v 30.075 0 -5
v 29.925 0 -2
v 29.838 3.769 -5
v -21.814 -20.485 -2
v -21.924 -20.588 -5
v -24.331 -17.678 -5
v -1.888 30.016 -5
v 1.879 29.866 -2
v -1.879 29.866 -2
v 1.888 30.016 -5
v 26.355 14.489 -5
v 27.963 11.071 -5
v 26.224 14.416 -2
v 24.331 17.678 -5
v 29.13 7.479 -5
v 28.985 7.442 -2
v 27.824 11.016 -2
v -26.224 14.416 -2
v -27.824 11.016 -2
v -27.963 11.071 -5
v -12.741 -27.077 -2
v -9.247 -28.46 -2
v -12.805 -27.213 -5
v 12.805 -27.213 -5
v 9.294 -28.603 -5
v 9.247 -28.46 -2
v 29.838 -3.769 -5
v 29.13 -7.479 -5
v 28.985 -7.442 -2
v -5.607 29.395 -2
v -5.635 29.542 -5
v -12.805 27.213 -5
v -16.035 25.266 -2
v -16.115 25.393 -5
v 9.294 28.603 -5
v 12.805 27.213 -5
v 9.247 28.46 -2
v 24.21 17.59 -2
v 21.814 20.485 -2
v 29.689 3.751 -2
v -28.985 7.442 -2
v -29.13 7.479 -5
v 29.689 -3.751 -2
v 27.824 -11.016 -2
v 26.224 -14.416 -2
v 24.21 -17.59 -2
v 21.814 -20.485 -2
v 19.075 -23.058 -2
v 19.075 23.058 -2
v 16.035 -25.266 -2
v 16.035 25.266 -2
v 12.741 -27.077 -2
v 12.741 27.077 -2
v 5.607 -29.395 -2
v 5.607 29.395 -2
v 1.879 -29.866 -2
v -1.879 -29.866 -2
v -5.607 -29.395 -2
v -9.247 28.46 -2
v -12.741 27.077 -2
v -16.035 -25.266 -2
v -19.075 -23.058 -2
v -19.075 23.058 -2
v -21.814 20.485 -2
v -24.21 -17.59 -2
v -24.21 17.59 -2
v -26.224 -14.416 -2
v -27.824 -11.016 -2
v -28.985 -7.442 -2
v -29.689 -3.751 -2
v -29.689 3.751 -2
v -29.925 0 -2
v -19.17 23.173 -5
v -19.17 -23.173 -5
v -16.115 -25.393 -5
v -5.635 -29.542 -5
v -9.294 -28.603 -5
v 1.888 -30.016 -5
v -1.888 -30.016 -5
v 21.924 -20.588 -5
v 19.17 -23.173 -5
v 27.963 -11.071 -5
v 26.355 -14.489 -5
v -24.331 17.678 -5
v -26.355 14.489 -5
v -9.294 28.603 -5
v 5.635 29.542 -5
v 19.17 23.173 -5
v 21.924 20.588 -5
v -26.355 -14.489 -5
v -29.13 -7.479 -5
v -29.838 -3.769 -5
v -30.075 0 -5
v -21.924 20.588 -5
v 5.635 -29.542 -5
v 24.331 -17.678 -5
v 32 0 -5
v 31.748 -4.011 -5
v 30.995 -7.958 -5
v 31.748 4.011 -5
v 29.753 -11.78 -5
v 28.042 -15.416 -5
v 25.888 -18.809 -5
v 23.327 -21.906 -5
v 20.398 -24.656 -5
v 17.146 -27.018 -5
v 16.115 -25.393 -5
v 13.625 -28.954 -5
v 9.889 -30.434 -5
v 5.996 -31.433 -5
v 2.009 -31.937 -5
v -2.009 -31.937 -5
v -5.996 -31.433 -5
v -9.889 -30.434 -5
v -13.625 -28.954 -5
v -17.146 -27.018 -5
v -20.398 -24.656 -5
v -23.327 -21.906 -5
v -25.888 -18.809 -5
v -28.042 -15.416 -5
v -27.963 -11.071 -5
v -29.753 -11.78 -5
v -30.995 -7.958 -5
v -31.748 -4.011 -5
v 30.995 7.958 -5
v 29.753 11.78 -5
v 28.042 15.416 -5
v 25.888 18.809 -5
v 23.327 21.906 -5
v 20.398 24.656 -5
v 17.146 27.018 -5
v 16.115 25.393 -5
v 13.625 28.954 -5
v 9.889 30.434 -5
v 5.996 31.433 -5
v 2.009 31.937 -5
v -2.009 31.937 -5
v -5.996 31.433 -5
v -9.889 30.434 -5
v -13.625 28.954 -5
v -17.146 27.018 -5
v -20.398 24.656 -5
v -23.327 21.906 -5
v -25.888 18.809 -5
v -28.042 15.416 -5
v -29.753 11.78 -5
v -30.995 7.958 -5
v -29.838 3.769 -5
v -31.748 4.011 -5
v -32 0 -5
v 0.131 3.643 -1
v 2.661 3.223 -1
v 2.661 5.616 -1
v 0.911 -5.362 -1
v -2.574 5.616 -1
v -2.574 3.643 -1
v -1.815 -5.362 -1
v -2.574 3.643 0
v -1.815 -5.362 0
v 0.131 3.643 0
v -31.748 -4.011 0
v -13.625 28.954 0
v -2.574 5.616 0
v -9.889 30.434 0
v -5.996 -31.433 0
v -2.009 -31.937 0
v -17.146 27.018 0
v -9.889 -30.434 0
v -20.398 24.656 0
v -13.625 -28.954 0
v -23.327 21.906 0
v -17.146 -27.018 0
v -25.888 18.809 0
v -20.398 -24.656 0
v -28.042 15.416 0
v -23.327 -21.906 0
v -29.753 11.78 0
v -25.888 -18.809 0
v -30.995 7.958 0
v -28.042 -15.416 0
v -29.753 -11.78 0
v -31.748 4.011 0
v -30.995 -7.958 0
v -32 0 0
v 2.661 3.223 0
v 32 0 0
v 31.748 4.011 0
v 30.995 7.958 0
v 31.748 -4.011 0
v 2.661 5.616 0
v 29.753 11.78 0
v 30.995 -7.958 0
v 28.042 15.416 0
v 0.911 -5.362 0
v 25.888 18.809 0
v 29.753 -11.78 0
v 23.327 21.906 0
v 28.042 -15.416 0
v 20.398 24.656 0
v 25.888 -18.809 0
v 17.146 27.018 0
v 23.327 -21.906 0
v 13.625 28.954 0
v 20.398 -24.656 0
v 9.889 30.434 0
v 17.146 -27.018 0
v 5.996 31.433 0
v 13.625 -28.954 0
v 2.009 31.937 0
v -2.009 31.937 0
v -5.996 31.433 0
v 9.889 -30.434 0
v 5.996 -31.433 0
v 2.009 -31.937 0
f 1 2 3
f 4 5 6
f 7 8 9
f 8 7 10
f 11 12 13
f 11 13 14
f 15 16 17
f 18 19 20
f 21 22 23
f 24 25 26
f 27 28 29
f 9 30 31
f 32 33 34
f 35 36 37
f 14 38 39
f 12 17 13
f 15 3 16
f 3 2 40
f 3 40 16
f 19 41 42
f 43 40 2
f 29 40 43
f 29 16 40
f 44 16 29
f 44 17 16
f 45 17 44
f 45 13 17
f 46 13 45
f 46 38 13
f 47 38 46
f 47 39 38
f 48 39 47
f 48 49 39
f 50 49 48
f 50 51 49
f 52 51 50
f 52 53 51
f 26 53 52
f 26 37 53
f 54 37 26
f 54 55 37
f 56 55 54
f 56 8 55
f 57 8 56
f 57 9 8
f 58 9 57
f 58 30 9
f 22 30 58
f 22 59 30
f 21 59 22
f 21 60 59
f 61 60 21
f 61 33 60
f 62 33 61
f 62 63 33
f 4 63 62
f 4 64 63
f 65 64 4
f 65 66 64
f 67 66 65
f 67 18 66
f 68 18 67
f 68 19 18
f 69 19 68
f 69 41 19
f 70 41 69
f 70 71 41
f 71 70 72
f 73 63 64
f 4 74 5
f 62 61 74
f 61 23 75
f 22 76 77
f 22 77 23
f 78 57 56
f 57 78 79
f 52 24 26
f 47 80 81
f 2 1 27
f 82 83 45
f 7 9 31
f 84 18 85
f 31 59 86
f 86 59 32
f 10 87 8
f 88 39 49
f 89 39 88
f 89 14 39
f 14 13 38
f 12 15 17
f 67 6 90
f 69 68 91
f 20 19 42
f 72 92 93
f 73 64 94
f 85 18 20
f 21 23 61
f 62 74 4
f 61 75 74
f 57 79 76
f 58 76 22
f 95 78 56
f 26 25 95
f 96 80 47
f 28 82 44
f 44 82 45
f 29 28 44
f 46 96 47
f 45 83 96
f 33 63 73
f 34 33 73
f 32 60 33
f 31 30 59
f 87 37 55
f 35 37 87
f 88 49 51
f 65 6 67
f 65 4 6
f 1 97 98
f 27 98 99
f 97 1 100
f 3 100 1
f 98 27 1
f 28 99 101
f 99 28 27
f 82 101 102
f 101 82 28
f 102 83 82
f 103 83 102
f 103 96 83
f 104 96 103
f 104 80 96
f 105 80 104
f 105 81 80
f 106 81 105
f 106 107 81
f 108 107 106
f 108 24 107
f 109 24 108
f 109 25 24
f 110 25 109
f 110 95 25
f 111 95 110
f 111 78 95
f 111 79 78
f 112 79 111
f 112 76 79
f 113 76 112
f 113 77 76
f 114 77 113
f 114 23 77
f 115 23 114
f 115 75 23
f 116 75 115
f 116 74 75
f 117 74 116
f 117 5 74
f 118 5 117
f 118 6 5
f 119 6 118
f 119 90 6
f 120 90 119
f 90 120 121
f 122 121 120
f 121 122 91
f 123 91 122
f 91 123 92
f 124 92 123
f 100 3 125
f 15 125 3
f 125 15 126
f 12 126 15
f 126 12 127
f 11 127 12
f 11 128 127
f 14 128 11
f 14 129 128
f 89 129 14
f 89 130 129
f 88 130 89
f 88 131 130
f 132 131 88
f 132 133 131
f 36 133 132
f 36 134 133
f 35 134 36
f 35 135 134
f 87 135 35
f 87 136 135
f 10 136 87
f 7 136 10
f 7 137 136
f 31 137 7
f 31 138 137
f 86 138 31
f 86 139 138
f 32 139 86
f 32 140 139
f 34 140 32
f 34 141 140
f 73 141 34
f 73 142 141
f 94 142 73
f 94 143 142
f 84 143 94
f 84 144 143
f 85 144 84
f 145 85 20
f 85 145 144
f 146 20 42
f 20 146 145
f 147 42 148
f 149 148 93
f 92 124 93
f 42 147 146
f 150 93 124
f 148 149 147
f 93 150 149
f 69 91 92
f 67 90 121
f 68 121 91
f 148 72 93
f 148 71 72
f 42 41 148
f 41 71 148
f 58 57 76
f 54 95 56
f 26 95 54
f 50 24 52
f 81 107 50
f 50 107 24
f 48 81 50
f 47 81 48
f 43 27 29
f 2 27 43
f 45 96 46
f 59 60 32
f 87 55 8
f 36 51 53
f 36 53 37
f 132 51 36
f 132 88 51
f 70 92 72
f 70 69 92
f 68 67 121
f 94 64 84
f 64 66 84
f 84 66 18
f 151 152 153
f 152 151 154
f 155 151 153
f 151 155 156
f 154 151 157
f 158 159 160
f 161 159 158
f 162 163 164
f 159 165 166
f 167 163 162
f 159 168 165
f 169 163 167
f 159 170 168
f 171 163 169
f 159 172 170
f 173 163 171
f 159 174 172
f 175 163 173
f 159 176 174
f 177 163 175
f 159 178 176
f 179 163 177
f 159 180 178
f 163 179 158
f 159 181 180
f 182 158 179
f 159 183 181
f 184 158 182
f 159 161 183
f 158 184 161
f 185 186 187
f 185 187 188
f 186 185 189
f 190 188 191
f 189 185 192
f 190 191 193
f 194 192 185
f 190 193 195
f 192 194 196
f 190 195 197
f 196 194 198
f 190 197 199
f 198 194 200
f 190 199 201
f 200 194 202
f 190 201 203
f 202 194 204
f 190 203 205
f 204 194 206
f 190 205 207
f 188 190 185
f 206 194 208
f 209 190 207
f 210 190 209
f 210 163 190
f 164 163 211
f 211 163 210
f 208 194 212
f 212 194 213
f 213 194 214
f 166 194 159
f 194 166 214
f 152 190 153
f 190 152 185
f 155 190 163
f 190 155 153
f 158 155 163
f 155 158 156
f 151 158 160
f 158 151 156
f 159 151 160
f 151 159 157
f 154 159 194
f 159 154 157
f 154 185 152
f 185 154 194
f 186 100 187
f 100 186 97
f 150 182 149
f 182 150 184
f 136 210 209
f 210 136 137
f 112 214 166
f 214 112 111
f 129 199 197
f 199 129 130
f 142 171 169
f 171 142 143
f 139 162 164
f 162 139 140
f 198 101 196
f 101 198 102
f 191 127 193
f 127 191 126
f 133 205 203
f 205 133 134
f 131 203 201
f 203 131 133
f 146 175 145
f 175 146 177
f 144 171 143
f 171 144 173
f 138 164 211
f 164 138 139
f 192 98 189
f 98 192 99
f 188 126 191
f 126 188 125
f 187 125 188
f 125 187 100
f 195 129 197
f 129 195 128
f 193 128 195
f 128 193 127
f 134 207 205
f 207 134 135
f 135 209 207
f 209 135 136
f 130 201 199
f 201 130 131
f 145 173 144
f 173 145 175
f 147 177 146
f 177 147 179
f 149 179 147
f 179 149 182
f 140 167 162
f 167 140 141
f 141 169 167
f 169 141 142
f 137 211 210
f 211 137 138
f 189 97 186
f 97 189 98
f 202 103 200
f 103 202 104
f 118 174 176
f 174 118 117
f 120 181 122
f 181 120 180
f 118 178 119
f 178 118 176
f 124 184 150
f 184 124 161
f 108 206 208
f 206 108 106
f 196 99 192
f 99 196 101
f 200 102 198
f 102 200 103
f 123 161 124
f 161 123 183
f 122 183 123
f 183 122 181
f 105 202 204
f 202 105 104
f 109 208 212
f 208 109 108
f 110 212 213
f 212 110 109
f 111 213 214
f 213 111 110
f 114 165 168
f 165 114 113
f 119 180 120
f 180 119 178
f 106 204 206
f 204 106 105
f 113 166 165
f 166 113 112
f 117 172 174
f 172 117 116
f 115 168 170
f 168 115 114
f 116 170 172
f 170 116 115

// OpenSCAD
$fn = 50;

difference() {
	union() {
		translate(v = [0, 0, -5.0]) {
			cylinder(h = 5, r = 32.0);
		}
	}
	union() {
		#translate(v = [0, 0, -5.0]) {
			cylinder(h = 3, r1 = 30.075, r2 = 29.925);
		}
		translate(v = [0, 0, -1]) {
			linear_extrude(height = 1) {
				text(font = "Impact", halign = "center", size = 10, text = "7", valign = "center");
			}
		}
	}
}
